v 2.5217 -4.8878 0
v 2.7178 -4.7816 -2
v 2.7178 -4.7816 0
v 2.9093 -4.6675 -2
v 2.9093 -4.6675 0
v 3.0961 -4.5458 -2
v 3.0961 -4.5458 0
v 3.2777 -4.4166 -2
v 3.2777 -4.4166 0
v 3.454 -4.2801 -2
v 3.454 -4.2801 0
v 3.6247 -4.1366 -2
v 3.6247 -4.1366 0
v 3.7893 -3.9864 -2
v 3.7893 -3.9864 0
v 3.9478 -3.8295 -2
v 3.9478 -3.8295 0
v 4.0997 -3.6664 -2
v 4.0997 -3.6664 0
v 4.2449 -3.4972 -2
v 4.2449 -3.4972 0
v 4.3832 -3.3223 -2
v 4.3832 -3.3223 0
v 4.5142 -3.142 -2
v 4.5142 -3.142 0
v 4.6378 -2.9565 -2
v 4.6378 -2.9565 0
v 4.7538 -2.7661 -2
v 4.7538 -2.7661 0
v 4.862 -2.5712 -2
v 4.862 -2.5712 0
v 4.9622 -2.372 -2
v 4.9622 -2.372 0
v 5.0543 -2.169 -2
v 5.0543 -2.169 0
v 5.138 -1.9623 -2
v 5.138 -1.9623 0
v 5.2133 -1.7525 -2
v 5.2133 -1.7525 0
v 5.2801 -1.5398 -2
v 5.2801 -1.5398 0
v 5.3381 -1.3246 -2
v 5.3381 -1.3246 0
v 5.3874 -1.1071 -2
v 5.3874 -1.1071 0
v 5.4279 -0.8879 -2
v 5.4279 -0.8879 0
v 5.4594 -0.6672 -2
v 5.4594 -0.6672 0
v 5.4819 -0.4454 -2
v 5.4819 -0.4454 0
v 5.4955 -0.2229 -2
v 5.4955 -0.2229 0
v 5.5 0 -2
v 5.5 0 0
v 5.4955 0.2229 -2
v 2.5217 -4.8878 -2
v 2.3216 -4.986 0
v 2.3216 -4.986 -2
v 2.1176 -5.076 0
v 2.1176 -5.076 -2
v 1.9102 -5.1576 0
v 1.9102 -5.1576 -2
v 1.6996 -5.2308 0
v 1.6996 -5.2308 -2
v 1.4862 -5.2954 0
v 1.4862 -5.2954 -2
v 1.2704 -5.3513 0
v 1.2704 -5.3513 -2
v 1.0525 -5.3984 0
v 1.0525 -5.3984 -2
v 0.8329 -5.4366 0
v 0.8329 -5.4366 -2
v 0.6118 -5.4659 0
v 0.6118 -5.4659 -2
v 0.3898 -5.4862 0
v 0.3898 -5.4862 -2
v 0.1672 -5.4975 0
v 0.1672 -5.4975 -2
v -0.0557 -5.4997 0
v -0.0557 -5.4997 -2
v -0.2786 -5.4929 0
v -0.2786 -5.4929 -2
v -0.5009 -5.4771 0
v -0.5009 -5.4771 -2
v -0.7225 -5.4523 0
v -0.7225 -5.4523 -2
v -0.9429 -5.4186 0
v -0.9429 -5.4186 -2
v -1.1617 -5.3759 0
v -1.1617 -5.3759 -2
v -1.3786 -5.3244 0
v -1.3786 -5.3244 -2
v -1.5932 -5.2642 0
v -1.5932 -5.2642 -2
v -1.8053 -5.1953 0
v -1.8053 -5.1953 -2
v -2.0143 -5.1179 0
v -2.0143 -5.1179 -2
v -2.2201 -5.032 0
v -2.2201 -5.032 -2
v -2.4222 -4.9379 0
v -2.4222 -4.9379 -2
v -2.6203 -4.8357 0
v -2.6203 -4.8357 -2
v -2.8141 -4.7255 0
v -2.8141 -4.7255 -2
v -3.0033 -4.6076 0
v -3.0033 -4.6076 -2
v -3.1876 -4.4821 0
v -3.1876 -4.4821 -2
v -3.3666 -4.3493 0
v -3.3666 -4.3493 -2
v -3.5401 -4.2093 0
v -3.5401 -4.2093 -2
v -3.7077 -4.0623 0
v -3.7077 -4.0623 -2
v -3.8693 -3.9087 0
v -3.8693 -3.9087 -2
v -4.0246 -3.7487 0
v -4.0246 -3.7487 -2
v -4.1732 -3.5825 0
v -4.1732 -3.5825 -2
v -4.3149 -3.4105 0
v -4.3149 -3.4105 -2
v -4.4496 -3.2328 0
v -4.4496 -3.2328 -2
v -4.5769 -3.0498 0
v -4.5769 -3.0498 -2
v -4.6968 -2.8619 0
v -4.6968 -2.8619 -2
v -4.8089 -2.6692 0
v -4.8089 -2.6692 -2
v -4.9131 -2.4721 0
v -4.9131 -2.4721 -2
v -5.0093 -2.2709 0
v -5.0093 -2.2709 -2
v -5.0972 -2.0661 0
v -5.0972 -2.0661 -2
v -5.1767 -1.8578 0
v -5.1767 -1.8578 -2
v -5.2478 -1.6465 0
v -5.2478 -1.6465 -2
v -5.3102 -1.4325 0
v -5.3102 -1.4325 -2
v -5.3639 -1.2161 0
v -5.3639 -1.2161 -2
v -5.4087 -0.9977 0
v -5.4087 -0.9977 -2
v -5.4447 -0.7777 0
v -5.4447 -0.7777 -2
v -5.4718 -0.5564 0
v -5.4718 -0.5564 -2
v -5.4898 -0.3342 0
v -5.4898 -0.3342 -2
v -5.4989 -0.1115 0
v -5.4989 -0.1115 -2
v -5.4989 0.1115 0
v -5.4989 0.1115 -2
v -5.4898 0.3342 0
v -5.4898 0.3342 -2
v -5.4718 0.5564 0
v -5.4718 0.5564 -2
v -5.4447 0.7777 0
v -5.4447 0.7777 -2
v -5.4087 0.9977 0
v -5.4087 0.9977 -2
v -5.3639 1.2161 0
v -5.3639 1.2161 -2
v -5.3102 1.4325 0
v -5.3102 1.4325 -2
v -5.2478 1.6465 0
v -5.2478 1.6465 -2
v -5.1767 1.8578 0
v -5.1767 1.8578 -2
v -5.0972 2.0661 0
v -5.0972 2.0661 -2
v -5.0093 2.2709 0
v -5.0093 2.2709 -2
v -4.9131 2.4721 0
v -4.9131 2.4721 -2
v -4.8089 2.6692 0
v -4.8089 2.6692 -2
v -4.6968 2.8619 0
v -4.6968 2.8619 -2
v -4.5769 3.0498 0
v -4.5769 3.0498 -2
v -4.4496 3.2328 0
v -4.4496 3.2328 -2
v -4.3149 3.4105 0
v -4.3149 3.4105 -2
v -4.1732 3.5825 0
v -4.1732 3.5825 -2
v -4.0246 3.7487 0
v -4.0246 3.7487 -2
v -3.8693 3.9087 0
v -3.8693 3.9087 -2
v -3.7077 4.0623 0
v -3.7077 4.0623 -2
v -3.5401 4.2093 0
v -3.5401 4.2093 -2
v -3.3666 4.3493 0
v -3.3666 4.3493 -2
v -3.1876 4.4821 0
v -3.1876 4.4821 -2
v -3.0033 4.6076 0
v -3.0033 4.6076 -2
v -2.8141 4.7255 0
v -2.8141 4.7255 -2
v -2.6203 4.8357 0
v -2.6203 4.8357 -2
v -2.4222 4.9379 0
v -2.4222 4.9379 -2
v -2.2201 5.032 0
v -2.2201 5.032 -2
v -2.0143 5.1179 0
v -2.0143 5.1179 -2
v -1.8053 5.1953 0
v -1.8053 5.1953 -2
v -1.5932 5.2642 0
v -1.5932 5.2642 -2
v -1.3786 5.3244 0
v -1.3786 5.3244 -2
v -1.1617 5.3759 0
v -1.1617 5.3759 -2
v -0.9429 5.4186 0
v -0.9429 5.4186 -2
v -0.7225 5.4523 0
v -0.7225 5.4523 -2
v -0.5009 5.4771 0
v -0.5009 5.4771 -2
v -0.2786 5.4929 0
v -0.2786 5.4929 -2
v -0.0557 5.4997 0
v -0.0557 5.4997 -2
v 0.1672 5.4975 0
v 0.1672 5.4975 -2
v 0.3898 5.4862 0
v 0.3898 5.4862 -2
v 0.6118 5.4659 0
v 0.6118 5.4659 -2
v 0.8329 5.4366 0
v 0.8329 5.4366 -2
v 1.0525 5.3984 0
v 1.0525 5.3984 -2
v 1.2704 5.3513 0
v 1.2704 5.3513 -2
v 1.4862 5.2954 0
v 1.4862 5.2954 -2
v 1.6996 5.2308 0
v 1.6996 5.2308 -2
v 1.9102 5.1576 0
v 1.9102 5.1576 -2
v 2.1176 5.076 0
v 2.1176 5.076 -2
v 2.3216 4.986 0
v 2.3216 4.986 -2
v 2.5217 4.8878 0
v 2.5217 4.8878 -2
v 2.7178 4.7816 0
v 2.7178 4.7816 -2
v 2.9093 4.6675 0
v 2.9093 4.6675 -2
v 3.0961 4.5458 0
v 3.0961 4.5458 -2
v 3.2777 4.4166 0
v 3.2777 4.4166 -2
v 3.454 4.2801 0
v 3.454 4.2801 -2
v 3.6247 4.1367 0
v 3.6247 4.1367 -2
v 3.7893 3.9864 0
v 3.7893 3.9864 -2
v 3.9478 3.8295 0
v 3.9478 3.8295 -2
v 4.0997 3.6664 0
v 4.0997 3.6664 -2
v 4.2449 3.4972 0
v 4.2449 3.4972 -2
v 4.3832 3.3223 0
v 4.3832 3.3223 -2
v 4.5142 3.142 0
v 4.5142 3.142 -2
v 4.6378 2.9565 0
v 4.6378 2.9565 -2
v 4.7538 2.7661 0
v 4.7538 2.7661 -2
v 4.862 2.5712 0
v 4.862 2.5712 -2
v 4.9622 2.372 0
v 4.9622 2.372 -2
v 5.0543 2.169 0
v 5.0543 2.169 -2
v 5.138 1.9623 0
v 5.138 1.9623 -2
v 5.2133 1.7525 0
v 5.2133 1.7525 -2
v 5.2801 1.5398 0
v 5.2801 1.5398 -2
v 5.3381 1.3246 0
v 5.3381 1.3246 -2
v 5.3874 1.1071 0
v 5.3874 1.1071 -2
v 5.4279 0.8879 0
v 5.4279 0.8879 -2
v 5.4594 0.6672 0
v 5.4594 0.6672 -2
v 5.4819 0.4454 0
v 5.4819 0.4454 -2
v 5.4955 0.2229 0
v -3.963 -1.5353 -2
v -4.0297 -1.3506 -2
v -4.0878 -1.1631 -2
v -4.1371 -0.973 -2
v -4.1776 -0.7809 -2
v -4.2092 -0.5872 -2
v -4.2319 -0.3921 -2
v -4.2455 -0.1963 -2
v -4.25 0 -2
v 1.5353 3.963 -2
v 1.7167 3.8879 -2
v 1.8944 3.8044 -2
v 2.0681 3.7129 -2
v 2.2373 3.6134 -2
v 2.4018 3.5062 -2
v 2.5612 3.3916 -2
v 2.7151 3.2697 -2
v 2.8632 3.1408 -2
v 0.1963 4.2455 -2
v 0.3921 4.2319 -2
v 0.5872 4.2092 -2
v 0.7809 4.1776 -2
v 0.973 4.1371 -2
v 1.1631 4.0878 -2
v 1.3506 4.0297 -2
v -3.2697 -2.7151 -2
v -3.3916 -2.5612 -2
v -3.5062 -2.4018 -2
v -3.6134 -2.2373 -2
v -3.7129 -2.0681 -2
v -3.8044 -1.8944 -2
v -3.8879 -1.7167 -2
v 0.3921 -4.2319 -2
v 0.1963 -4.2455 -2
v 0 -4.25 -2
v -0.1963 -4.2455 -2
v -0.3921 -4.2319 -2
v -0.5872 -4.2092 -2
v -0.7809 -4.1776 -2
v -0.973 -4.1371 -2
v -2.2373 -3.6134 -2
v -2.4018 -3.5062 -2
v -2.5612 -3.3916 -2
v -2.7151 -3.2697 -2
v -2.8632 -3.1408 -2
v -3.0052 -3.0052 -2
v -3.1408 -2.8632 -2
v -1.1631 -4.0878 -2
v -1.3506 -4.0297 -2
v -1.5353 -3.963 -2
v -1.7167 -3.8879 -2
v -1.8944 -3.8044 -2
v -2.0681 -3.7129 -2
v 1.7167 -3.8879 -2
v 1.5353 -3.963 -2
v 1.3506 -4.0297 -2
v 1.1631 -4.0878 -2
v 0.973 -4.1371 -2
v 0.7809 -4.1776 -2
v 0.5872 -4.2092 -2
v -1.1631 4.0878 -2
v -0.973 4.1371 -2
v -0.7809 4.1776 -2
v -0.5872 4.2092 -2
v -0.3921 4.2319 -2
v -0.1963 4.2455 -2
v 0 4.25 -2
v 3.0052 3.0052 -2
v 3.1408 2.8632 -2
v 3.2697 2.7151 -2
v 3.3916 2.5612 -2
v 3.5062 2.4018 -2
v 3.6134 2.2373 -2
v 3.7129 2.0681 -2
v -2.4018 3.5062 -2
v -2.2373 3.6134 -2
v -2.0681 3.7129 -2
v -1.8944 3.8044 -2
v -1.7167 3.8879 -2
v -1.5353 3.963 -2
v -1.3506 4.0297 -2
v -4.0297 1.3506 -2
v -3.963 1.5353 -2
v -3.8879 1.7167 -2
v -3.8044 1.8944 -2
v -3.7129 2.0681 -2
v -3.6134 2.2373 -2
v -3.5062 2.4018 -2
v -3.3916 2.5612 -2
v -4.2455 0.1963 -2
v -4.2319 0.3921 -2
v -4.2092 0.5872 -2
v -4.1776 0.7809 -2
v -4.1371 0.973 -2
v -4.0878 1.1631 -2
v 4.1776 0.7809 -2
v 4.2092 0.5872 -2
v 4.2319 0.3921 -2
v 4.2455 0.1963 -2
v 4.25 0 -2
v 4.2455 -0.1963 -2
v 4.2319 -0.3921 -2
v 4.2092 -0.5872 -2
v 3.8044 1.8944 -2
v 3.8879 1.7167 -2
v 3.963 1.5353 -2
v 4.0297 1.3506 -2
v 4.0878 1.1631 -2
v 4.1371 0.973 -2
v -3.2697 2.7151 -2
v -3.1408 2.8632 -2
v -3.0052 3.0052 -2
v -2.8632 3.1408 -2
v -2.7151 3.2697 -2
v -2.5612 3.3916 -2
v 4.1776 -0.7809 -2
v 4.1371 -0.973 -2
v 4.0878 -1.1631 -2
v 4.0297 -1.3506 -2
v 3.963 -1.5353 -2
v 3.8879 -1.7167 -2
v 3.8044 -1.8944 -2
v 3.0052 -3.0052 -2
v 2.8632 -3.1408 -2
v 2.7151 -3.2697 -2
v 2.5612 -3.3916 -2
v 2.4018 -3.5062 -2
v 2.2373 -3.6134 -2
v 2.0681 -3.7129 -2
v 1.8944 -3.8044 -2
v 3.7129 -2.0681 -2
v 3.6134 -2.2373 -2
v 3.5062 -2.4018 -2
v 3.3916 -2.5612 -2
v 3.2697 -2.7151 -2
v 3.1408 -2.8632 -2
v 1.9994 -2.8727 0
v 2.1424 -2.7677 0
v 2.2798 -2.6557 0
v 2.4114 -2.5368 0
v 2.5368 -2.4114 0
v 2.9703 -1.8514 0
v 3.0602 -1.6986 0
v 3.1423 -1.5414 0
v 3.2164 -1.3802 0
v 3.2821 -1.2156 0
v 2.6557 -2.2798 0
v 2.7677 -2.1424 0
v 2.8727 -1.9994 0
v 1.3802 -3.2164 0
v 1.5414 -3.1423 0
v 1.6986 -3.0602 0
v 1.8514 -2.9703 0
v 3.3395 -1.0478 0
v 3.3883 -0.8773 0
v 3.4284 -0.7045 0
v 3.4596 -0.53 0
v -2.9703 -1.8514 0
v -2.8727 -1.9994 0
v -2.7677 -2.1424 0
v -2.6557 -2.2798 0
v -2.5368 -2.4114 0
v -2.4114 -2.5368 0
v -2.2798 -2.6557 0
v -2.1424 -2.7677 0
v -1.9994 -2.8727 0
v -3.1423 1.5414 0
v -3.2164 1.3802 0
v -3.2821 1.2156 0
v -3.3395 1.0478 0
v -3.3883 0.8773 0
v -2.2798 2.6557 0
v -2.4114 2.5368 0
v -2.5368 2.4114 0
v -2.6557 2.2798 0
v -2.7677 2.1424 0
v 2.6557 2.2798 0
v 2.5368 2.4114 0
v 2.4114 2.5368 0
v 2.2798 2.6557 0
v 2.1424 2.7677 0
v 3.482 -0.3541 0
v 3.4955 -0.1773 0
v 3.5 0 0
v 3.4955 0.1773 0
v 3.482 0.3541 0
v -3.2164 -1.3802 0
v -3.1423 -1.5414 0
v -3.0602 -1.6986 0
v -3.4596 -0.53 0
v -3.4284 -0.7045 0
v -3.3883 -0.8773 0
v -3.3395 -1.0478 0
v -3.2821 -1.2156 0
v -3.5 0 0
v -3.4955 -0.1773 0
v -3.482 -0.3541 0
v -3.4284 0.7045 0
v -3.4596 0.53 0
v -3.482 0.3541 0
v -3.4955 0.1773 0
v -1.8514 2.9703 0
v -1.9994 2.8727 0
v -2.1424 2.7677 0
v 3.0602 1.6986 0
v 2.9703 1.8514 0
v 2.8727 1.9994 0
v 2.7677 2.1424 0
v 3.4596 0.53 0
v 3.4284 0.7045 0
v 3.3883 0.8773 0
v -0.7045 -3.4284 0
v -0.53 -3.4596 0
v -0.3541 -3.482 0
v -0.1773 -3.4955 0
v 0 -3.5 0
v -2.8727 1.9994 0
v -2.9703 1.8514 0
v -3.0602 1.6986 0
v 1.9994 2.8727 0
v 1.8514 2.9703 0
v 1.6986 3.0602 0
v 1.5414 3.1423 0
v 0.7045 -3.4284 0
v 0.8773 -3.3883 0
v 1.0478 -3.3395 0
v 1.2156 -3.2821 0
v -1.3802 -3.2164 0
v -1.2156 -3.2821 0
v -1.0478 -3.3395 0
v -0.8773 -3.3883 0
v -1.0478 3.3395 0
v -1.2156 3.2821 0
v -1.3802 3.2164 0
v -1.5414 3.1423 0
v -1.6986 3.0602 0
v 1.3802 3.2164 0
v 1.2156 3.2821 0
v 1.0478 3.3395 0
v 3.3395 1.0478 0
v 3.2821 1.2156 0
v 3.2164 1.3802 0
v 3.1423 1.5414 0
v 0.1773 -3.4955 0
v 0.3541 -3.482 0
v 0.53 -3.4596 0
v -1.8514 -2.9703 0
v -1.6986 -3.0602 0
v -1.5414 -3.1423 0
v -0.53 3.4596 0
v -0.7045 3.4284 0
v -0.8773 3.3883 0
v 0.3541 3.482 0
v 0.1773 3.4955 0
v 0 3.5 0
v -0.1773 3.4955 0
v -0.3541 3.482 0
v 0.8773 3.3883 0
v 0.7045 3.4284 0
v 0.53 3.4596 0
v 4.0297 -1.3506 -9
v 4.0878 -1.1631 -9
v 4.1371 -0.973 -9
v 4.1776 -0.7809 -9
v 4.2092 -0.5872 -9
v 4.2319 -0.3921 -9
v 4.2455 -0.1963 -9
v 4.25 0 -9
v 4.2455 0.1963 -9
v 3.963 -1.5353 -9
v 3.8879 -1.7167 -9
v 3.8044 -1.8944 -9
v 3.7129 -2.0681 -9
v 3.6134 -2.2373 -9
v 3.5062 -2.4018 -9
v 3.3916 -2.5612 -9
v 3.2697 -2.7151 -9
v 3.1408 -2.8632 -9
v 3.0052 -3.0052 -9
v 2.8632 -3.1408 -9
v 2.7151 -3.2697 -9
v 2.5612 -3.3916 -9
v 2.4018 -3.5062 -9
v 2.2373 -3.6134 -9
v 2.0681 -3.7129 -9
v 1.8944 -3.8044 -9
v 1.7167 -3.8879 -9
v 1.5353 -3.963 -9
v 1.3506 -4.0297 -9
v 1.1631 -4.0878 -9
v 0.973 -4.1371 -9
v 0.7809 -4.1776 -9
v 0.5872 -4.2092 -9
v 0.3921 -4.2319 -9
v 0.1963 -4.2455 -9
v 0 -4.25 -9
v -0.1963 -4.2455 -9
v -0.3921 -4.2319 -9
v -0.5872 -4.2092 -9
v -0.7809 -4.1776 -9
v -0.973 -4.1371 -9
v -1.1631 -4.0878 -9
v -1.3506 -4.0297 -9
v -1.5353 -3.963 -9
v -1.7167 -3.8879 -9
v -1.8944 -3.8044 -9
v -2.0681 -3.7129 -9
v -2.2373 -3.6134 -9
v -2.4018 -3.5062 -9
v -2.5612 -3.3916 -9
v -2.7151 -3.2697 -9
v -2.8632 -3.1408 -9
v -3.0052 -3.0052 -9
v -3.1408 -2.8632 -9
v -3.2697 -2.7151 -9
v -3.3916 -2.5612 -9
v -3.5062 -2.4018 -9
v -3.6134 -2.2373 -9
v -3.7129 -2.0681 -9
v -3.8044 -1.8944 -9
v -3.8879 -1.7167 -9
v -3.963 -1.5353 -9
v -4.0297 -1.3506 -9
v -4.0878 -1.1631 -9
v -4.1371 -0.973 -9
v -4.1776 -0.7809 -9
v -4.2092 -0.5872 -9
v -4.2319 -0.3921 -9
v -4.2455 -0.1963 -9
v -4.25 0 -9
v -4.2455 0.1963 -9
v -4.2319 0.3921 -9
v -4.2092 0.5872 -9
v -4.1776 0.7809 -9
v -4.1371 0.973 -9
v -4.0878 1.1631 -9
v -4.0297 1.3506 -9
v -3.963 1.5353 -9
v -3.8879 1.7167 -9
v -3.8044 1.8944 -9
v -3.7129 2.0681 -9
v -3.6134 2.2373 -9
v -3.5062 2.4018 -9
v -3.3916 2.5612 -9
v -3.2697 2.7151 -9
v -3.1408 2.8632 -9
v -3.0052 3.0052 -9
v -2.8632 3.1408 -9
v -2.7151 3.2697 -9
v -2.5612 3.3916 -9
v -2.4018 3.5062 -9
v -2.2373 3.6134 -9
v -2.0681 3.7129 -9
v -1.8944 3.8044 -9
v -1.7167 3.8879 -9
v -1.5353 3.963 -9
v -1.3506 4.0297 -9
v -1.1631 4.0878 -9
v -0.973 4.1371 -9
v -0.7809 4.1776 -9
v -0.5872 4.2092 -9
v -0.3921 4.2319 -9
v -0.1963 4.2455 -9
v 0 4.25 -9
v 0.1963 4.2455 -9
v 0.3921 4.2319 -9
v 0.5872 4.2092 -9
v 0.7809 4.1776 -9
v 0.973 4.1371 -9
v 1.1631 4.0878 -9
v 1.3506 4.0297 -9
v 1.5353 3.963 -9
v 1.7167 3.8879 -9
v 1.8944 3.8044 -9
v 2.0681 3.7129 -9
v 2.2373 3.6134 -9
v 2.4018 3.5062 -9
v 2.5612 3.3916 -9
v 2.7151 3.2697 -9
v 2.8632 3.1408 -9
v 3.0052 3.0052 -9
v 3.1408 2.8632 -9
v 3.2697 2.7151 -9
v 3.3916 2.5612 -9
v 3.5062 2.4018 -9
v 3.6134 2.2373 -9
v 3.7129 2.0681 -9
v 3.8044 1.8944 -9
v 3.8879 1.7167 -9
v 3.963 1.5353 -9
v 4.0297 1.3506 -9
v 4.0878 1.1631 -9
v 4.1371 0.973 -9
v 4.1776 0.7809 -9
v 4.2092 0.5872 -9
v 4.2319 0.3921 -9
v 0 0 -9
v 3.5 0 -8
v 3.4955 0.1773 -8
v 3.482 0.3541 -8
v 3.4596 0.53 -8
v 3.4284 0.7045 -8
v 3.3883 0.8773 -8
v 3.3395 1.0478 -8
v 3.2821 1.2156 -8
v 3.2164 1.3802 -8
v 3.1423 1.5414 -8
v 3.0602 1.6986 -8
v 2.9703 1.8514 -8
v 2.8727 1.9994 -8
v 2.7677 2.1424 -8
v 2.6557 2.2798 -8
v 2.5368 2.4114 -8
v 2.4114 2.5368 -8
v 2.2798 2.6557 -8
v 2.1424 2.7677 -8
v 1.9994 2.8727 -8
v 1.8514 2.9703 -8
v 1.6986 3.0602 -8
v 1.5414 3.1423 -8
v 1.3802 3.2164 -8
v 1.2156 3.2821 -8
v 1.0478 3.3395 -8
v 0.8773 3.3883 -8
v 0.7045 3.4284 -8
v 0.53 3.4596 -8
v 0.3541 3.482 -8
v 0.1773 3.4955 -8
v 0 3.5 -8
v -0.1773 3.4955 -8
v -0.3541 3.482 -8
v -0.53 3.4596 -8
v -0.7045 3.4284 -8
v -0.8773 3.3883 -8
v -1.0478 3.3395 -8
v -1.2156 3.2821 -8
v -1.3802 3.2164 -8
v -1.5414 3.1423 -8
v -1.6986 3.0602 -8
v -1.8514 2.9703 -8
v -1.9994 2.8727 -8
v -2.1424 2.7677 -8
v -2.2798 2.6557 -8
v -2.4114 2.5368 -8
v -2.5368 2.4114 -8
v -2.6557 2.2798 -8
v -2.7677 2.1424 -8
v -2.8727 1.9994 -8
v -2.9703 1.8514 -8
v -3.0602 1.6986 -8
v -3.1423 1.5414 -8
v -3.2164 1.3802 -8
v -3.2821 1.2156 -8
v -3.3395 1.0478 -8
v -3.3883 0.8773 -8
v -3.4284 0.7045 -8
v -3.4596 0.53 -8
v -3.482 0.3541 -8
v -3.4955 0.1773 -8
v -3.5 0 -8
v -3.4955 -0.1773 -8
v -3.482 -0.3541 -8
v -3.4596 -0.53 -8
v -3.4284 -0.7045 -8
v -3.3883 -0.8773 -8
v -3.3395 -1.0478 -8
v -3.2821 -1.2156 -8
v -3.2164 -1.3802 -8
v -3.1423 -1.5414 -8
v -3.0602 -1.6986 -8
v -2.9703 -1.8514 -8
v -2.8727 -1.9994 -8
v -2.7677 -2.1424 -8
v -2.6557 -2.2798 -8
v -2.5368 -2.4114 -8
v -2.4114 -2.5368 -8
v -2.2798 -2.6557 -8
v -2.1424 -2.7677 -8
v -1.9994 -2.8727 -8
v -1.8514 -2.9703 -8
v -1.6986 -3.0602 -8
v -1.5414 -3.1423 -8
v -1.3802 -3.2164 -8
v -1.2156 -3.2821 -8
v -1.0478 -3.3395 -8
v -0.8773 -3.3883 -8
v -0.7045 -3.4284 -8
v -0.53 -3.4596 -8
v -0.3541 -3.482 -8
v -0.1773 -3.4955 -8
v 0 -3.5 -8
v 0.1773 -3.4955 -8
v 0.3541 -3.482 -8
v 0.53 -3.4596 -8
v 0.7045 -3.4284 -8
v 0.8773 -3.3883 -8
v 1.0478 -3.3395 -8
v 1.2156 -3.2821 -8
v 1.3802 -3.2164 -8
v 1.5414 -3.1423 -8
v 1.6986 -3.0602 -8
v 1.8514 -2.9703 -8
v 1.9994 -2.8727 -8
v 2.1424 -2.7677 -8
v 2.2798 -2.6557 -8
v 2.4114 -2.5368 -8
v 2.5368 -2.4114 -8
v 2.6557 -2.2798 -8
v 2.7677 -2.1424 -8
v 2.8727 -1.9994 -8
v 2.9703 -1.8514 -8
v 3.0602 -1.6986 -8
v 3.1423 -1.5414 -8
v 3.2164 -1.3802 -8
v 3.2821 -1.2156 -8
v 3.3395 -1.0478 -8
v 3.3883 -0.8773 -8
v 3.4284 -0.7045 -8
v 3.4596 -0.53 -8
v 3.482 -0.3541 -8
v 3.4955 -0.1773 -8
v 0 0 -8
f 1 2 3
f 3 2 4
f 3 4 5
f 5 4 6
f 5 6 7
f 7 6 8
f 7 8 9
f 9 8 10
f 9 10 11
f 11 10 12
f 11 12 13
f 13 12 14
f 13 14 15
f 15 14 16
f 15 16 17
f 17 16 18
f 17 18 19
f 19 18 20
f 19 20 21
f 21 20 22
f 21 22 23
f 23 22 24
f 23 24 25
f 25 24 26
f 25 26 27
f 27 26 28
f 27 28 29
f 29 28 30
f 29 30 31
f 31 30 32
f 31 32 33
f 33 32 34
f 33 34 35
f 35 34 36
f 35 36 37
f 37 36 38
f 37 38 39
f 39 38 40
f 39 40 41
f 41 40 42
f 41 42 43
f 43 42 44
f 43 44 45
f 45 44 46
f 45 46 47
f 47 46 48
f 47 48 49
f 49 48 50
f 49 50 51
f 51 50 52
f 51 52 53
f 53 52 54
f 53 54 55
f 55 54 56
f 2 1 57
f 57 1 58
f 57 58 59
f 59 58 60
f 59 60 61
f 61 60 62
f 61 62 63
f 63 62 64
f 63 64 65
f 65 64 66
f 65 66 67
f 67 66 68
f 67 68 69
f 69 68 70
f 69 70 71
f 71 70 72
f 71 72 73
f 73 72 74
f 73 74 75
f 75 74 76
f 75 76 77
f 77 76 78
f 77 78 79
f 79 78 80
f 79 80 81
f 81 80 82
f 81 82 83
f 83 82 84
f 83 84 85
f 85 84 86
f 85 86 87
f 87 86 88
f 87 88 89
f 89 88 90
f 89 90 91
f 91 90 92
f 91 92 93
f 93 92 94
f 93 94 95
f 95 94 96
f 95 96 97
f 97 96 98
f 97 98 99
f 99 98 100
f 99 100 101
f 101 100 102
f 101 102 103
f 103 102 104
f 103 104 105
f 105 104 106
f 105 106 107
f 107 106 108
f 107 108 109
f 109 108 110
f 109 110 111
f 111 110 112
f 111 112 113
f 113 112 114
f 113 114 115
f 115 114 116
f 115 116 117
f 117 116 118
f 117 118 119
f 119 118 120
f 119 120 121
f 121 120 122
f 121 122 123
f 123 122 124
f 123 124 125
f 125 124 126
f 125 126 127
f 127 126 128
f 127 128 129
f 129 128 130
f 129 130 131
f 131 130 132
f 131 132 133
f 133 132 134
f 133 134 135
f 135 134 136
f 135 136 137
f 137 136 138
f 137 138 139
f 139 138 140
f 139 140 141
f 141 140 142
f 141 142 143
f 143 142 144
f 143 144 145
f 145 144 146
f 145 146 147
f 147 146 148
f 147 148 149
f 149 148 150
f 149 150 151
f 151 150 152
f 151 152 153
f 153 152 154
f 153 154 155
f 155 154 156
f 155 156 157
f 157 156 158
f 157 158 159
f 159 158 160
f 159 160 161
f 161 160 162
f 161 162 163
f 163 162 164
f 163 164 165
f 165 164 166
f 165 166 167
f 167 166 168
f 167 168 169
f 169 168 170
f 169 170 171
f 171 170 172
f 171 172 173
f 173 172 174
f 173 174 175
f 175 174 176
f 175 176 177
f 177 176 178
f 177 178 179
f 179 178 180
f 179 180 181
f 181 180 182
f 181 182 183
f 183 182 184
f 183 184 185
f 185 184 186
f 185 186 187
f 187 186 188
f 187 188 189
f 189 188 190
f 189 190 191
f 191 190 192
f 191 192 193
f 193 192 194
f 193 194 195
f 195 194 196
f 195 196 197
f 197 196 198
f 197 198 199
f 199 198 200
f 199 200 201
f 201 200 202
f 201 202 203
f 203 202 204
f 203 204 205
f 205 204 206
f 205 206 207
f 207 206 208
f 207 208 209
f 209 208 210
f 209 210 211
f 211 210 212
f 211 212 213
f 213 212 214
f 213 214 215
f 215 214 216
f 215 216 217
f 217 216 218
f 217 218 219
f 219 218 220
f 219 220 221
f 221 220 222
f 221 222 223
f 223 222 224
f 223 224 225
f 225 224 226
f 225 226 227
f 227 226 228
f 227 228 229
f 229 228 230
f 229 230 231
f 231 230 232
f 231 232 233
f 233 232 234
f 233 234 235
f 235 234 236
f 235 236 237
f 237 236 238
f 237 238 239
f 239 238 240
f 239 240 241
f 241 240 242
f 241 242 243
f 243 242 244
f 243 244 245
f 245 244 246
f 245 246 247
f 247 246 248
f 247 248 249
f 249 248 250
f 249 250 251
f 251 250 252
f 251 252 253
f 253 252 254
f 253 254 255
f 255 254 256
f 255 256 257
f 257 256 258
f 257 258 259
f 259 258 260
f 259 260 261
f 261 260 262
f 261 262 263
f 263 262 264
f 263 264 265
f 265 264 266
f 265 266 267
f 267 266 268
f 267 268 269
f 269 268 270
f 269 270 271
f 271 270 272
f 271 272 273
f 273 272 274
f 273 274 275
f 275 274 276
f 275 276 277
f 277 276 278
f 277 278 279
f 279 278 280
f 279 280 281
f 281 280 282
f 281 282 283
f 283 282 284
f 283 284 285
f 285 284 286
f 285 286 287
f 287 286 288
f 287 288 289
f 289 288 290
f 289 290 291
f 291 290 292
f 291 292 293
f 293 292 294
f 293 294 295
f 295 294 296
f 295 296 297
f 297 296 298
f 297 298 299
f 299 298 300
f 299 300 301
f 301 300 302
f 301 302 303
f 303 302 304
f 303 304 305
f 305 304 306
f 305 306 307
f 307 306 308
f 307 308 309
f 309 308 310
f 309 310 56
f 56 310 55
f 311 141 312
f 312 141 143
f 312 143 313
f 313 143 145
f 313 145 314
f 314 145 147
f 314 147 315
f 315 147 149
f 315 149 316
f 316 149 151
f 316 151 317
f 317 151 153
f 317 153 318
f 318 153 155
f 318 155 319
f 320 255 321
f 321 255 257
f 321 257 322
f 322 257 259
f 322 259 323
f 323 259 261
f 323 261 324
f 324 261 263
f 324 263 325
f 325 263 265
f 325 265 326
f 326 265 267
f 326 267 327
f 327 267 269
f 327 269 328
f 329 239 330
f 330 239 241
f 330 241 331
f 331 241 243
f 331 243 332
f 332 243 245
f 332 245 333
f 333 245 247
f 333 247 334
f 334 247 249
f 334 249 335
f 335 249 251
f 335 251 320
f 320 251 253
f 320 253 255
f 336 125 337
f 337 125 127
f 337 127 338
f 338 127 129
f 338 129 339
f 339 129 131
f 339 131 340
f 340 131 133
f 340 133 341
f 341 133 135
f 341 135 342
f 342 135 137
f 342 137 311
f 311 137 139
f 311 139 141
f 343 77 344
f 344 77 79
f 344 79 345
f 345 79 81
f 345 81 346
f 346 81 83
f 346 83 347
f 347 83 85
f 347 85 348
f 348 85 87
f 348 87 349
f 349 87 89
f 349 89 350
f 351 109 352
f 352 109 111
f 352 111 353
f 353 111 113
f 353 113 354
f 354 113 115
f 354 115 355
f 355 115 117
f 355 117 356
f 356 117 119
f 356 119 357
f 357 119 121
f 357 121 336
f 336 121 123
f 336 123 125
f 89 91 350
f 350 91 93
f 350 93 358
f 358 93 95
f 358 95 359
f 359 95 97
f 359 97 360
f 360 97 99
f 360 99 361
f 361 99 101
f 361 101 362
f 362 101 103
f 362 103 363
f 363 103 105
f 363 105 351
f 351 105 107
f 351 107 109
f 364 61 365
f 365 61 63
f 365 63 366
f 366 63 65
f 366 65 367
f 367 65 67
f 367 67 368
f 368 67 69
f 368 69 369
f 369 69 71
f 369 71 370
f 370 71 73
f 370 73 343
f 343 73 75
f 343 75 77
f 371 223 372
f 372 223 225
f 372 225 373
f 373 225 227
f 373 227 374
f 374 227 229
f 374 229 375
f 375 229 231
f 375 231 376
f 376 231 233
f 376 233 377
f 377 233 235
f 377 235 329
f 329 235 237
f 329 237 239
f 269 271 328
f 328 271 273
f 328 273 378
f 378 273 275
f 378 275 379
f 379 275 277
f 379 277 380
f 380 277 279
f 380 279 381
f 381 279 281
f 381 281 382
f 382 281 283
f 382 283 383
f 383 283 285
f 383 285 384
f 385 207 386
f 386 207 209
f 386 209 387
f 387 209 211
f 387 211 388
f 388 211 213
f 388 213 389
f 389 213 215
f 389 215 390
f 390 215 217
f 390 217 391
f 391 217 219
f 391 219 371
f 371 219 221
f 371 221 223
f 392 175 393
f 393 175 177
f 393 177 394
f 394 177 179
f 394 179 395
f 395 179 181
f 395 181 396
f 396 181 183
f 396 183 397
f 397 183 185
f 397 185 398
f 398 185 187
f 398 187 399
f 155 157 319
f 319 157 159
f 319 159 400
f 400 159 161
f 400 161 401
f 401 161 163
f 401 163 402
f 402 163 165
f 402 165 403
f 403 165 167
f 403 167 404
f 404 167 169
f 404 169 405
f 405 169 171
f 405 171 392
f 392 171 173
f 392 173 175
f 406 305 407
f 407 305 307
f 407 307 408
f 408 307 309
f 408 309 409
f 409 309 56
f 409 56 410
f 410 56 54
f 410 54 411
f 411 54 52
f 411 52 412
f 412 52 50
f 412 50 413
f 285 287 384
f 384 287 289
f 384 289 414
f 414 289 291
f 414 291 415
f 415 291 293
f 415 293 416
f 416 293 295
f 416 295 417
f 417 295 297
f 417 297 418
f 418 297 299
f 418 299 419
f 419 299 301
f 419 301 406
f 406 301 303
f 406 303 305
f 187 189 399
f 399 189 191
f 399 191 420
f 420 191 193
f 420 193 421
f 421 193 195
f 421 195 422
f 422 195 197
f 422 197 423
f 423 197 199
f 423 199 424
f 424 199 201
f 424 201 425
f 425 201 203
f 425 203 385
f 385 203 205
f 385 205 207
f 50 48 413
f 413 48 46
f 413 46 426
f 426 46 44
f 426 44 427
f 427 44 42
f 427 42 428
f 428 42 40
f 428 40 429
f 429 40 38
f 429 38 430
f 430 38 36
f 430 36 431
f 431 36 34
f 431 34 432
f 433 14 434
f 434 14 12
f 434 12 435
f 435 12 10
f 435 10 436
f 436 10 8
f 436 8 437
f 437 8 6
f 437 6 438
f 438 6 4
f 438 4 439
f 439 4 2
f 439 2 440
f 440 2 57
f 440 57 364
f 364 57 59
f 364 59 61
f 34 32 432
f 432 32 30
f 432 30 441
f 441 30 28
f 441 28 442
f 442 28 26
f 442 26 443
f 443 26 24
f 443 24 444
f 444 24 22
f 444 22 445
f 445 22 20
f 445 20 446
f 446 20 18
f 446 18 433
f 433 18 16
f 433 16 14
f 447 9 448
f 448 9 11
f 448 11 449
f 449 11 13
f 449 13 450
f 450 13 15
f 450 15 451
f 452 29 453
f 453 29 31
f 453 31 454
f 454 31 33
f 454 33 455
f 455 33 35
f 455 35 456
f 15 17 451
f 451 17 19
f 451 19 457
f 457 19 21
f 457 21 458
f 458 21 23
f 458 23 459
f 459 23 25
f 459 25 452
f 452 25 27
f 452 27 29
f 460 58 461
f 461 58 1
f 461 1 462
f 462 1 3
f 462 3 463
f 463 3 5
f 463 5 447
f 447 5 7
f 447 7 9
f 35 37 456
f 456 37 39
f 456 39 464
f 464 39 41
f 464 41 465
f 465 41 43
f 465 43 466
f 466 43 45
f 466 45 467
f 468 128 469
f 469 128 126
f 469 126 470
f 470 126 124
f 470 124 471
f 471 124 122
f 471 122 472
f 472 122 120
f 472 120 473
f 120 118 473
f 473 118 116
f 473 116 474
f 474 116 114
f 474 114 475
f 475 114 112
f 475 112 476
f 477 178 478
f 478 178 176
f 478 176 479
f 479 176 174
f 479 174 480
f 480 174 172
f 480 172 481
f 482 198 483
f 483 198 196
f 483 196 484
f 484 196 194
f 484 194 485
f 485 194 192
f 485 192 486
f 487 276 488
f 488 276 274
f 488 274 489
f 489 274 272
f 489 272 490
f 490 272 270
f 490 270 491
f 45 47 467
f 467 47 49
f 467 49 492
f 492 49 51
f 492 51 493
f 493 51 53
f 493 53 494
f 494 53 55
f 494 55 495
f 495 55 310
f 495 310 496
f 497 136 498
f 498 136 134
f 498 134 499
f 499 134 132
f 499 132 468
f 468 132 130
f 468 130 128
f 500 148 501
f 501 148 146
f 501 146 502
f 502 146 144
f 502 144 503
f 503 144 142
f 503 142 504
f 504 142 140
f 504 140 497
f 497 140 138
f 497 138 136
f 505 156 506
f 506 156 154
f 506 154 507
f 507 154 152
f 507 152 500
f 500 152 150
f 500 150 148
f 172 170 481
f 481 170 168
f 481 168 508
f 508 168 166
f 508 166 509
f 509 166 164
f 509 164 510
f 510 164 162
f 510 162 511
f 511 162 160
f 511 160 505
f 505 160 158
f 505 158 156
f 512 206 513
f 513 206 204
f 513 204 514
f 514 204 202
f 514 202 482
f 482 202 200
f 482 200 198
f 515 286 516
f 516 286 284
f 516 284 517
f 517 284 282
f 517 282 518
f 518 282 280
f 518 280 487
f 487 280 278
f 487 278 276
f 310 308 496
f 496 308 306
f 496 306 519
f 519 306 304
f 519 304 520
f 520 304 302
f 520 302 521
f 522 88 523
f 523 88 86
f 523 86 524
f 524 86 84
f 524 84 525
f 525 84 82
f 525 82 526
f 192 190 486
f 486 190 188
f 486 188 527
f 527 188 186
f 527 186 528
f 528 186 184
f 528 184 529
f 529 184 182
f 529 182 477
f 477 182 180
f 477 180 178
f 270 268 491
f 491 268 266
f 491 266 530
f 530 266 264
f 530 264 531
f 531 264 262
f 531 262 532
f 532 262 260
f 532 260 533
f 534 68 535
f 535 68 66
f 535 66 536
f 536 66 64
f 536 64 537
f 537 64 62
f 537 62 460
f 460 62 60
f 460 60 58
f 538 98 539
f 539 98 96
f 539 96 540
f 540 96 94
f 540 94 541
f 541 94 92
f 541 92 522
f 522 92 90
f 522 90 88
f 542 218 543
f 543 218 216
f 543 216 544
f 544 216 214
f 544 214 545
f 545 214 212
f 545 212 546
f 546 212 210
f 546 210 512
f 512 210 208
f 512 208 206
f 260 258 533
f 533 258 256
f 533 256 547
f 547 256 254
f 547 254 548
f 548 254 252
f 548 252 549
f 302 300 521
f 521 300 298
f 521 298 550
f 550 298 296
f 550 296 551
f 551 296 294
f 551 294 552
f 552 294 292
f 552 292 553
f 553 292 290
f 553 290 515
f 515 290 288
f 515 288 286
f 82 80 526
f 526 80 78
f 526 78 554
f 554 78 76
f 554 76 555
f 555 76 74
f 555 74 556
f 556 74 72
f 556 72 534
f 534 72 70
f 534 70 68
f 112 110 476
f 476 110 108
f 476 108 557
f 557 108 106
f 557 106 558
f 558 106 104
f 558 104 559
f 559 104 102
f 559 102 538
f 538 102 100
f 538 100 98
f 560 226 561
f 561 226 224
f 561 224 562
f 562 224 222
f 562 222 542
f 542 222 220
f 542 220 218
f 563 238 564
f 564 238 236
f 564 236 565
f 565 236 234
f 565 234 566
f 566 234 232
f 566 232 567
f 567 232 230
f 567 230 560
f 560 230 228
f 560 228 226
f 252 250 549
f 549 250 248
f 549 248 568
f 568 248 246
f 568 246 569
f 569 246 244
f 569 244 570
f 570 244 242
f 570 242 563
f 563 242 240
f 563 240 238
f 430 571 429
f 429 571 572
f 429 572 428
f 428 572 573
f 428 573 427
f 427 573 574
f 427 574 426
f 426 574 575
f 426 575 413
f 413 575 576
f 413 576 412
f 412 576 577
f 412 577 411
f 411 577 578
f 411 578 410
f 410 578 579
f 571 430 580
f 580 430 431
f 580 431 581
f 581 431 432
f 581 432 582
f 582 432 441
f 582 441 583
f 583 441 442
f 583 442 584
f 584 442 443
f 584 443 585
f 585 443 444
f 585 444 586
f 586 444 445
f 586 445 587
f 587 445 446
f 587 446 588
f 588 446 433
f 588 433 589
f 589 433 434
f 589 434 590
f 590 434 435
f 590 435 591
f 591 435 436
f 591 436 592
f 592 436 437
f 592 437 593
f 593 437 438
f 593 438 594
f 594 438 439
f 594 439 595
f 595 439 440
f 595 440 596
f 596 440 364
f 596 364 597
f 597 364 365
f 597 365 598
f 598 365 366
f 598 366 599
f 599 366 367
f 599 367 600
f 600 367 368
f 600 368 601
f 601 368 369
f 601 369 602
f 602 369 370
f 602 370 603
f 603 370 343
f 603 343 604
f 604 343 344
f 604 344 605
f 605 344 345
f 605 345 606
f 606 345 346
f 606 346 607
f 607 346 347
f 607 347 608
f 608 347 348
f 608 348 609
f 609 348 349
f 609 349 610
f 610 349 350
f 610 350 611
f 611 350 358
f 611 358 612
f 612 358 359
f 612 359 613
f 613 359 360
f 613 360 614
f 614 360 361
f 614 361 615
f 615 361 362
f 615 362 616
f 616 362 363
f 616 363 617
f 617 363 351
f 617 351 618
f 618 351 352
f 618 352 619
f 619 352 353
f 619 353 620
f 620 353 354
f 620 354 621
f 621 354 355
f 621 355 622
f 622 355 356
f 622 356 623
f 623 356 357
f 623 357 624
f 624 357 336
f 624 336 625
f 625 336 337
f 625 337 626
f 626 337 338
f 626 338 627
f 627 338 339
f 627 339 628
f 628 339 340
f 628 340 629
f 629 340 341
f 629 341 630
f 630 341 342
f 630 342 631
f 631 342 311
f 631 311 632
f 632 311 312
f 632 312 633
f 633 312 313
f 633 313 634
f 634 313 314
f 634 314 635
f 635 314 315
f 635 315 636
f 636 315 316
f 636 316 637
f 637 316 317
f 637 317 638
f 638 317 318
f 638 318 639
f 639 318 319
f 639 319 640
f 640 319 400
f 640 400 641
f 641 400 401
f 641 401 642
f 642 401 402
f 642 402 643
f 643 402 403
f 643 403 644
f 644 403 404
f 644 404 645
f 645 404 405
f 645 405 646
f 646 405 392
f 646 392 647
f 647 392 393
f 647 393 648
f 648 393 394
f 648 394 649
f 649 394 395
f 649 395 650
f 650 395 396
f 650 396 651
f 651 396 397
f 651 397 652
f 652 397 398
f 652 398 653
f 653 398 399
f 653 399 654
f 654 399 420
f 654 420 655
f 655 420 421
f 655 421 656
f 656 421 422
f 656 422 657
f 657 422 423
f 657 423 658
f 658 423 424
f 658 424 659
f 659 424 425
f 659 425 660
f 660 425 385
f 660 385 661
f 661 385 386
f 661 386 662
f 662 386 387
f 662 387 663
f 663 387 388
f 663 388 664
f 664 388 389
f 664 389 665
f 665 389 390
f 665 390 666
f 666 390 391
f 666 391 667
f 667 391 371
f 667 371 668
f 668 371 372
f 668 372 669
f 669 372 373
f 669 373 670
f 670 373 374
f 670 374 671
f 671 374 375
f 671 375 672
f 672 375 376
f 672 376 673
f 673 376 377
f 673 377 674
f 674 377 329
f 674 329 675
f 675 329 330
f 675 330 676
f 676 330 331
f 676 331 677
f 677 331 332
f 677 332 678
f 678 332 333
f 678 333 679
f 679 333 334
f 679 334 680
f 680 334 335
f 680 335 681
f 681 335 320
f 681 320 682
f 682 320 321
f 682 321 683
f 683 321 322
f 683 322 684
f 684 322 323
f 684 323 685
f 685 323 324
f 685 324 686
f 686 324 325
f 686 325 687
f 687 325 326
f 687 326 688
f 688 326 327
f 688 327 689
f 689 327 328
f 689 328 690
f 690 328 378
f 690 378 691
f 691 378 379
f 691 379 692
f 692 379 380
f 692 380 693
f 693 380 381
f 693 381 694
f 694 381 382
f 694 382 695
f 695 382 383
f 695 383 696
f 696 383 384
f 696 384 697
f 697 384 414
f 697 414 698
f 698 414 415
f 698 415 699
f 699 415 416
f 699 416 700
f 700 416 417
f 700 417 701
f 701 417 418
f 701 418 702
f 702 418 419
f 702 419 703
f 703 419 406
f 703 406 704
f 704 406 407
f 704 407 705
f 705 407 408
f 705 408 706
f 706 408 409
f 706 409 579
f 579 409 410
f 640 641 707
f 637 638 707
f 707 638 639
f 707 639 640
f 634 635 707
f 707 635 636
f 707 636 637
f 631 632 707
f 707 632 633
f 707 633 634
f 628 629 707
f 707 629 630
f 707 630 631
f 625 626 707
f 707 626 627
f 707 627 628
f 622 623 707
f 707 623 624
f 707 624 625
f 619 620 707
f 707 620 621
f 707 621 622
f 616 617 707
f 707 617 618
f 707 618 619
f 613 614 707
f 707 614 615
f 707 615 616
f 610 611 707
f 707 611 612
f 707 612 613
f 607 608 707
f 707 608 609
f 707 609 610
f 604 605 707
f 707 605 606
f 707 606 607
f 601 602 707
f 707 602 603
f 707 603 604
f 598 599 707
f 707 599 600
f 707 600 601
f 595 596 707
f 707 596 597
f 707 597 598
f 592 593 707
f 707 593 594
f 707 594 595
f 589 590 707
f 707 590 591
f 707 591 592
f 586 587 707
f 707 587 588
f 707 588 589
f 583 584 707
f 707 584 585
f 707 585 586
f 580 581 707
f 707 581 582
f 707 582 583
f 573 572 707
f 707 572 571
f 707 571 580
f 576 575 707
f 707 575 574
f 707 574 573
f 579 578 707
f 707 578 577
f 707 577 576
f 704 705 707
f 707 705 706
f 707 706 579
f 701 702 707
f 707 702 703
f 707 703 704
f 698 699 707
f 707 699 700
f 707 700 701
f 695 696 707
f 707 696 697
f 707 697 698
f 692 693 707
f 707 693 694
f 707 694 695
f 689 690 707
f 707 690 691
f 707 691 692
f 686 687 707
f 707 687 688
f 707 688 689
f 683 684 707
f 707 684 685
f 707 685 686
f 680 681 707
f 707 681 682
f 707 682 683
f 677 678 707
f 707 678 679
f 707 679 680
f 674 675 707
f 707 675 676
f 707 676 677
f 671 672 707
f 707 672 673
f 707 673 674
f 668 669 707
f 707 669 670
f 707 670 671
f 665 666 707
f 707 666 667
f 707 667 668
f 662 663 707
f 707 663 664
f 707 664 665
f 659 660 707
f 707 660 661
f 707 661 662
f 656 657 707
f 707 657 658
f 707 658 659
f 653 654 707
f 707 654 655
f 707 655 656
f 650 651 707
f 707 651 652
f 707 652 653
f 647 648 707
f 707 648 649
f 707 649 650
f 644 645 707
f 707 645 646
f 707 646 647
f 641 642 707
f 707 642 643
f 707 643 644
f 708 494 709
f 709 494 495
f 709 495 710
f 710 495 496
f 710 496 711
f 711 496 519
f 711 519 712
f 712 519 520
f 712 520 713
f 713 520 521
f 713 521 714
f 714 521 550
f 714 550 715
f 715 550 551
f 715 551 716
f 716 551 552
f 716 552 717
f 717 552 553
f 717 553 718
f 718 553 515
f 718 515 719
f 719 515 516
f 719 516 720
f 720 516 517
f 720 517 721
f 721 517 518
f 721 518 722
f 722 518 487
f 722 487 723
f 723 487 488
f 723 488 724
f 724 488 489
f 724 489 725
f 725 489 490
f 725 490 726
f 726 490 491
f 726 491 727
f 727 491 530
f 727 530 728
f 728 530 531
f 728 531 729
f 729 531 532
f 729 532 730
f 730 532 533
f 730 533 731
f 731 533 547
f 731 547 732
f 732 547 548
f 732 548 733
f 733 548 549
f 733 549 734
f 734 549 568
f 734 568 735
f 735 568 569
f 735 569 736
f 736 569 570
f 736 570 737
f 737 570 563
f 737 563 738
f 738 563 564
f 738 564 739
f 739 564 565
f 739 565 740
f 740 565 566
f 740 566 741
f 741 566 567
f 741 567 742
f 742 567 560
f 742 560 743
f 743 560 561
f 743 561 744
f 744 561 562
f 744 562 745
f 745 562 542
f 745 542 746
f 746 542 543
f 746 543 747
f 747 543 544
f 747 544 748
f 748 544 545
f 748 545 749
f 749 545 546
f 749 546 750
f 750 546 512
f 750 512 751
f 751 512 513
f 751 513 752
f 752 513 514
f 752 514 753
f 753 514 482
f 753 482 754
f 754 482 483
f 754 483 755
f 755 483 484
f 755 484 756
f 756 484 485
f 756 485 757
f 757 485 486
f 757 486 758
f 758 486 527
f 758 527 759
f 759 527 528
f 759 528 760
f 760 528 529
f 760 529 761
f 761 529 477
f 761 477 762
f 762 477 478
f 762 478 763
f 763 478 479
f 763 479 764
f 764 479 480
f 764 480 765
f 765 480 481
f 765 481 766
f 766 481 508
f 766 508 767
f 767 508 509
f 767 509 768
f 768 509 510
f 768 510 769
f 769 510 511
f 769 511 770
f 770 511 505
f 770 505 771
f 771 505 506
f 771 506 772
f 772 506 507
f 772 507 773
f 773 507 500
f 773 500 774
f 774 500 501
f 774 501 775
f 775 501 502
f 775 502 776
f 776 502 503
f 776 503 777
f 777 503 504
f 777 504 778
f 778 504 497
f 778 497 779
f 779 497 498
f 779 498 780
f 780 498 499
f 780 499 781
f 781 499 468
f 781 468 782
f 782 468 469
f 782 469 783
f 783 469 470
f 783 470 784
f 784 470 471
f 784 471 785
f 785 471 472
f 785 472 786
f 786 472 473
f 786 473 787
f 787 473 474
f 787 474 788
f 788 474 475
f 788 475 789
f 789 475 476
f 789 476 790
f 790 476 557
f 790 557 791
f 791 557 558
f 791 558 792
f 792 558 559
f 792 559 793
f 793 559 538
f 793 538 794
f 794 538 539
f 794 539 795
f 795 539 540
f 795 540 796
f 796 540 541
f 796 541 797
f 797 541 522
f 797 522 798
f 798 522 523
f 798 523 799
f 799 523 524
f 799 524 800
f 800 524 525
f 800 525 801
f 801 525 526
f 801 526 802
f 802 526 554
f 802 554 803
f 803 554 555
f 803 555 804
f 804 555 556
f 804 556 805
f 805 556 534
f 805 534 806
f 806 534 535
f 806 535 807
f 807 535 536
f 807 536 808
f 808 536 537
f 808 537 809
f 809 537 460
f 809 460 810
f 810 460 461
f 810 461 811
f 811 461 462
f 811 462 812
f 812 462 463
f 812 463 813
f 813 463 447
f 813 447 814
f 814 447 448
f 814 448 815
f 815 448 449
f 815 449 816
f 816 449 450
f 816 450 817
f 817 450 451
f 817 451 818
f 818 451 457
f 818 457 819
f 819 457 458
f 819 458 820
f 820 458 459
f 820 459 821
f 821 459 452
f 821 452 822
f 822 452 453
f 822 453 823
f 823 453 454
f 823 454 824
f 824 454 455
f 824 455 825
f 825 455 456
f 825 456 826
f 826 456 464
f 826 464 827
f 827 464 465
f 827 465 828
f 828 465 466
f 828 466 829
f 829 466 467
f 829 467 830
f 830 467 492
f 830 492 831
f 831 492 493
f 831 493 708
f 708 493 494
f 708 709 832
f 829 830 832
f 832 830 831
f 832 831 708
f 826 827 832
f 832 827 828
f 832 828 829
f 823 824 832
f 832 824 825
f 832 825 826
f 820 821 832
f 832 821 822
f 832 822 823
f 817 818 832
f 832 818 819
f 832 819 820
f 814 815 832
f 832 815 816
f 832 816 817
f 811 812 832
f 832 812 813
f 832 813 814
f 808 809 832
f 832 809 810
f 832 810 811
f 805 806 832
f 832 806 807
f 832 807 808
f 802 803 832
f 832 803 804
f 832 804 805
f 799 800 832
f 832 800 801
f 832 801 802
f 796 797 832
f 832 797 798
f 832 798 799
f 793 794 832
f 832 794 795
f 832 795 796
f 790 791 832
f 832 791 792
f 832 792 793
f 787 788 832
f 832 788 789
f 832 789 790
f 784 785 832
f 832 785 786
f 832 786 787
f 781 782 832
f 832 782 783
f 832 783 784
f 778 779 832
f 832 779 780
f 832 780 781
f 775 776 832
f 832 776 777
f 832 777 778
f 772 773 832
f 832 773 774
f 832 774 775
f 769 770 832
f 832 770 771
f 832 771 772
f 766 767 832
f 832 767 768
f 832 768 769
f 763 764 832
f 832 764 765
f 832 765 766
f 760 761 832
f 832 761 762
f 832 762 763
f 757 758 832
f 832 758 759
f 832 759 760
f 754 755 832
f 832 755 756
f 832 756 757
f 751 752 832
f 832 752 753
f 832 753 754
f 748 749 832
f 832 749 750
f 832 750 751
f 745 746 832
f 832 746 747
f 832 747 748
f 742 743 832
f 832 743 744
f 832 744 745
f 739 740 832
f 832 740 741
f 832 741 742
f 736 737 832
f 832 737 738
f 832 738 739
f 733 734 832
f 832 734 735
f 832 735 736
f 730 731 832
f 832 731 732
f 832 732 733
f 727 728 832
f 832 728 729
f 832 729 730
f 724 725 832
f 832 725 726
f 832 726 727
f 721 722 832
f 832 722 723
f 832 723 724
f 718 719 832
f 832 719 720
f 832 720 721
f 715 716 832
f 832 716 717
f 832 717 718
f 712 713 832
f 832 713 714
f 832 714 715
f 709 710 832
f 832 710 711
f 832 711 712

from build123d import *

# Parameters (mm, degrees)
SKETCH1_R           = 5.5
BOSS_EXTRUDE1_DEPTH = 2
SKETCH2_R           = 4.25
BOSS_EXTRUDE2_DEPTH = 7
SKETCH5_R           = 3.5
CUT_EXTRUDE3_DEPTH  = 8


with BuildPart() as part:
    # Sketch1 → Boss-Extrude1 (new body)
    with BuildSketch(Plane.XY):
        Circle(SKETCH1_R)
    extrude(amount=-BOSS_EXTRUDE1_DEPTH)

    # Sketch2 → Boss-Extrude2 (add)
    with BuildSketch(Plane(origin=(0, 0, -2), x_dir=(-1, 0, 0), z_dir=(0, 0, -1))):
        Circle(SKETCH2_R)
    extrude(amount=BOSS_EXTRUDE2_DEPTH)

    # Sketch5 → Cut-Extrude3 (cut)
    with BuildSketch(Plane.XY):
        Circle(SKETCH5_R)
    extrude(amount=-CUT_EXTRUDE3_DEPTH, mode=Mode.SUBTRACT)


solid = part.part
